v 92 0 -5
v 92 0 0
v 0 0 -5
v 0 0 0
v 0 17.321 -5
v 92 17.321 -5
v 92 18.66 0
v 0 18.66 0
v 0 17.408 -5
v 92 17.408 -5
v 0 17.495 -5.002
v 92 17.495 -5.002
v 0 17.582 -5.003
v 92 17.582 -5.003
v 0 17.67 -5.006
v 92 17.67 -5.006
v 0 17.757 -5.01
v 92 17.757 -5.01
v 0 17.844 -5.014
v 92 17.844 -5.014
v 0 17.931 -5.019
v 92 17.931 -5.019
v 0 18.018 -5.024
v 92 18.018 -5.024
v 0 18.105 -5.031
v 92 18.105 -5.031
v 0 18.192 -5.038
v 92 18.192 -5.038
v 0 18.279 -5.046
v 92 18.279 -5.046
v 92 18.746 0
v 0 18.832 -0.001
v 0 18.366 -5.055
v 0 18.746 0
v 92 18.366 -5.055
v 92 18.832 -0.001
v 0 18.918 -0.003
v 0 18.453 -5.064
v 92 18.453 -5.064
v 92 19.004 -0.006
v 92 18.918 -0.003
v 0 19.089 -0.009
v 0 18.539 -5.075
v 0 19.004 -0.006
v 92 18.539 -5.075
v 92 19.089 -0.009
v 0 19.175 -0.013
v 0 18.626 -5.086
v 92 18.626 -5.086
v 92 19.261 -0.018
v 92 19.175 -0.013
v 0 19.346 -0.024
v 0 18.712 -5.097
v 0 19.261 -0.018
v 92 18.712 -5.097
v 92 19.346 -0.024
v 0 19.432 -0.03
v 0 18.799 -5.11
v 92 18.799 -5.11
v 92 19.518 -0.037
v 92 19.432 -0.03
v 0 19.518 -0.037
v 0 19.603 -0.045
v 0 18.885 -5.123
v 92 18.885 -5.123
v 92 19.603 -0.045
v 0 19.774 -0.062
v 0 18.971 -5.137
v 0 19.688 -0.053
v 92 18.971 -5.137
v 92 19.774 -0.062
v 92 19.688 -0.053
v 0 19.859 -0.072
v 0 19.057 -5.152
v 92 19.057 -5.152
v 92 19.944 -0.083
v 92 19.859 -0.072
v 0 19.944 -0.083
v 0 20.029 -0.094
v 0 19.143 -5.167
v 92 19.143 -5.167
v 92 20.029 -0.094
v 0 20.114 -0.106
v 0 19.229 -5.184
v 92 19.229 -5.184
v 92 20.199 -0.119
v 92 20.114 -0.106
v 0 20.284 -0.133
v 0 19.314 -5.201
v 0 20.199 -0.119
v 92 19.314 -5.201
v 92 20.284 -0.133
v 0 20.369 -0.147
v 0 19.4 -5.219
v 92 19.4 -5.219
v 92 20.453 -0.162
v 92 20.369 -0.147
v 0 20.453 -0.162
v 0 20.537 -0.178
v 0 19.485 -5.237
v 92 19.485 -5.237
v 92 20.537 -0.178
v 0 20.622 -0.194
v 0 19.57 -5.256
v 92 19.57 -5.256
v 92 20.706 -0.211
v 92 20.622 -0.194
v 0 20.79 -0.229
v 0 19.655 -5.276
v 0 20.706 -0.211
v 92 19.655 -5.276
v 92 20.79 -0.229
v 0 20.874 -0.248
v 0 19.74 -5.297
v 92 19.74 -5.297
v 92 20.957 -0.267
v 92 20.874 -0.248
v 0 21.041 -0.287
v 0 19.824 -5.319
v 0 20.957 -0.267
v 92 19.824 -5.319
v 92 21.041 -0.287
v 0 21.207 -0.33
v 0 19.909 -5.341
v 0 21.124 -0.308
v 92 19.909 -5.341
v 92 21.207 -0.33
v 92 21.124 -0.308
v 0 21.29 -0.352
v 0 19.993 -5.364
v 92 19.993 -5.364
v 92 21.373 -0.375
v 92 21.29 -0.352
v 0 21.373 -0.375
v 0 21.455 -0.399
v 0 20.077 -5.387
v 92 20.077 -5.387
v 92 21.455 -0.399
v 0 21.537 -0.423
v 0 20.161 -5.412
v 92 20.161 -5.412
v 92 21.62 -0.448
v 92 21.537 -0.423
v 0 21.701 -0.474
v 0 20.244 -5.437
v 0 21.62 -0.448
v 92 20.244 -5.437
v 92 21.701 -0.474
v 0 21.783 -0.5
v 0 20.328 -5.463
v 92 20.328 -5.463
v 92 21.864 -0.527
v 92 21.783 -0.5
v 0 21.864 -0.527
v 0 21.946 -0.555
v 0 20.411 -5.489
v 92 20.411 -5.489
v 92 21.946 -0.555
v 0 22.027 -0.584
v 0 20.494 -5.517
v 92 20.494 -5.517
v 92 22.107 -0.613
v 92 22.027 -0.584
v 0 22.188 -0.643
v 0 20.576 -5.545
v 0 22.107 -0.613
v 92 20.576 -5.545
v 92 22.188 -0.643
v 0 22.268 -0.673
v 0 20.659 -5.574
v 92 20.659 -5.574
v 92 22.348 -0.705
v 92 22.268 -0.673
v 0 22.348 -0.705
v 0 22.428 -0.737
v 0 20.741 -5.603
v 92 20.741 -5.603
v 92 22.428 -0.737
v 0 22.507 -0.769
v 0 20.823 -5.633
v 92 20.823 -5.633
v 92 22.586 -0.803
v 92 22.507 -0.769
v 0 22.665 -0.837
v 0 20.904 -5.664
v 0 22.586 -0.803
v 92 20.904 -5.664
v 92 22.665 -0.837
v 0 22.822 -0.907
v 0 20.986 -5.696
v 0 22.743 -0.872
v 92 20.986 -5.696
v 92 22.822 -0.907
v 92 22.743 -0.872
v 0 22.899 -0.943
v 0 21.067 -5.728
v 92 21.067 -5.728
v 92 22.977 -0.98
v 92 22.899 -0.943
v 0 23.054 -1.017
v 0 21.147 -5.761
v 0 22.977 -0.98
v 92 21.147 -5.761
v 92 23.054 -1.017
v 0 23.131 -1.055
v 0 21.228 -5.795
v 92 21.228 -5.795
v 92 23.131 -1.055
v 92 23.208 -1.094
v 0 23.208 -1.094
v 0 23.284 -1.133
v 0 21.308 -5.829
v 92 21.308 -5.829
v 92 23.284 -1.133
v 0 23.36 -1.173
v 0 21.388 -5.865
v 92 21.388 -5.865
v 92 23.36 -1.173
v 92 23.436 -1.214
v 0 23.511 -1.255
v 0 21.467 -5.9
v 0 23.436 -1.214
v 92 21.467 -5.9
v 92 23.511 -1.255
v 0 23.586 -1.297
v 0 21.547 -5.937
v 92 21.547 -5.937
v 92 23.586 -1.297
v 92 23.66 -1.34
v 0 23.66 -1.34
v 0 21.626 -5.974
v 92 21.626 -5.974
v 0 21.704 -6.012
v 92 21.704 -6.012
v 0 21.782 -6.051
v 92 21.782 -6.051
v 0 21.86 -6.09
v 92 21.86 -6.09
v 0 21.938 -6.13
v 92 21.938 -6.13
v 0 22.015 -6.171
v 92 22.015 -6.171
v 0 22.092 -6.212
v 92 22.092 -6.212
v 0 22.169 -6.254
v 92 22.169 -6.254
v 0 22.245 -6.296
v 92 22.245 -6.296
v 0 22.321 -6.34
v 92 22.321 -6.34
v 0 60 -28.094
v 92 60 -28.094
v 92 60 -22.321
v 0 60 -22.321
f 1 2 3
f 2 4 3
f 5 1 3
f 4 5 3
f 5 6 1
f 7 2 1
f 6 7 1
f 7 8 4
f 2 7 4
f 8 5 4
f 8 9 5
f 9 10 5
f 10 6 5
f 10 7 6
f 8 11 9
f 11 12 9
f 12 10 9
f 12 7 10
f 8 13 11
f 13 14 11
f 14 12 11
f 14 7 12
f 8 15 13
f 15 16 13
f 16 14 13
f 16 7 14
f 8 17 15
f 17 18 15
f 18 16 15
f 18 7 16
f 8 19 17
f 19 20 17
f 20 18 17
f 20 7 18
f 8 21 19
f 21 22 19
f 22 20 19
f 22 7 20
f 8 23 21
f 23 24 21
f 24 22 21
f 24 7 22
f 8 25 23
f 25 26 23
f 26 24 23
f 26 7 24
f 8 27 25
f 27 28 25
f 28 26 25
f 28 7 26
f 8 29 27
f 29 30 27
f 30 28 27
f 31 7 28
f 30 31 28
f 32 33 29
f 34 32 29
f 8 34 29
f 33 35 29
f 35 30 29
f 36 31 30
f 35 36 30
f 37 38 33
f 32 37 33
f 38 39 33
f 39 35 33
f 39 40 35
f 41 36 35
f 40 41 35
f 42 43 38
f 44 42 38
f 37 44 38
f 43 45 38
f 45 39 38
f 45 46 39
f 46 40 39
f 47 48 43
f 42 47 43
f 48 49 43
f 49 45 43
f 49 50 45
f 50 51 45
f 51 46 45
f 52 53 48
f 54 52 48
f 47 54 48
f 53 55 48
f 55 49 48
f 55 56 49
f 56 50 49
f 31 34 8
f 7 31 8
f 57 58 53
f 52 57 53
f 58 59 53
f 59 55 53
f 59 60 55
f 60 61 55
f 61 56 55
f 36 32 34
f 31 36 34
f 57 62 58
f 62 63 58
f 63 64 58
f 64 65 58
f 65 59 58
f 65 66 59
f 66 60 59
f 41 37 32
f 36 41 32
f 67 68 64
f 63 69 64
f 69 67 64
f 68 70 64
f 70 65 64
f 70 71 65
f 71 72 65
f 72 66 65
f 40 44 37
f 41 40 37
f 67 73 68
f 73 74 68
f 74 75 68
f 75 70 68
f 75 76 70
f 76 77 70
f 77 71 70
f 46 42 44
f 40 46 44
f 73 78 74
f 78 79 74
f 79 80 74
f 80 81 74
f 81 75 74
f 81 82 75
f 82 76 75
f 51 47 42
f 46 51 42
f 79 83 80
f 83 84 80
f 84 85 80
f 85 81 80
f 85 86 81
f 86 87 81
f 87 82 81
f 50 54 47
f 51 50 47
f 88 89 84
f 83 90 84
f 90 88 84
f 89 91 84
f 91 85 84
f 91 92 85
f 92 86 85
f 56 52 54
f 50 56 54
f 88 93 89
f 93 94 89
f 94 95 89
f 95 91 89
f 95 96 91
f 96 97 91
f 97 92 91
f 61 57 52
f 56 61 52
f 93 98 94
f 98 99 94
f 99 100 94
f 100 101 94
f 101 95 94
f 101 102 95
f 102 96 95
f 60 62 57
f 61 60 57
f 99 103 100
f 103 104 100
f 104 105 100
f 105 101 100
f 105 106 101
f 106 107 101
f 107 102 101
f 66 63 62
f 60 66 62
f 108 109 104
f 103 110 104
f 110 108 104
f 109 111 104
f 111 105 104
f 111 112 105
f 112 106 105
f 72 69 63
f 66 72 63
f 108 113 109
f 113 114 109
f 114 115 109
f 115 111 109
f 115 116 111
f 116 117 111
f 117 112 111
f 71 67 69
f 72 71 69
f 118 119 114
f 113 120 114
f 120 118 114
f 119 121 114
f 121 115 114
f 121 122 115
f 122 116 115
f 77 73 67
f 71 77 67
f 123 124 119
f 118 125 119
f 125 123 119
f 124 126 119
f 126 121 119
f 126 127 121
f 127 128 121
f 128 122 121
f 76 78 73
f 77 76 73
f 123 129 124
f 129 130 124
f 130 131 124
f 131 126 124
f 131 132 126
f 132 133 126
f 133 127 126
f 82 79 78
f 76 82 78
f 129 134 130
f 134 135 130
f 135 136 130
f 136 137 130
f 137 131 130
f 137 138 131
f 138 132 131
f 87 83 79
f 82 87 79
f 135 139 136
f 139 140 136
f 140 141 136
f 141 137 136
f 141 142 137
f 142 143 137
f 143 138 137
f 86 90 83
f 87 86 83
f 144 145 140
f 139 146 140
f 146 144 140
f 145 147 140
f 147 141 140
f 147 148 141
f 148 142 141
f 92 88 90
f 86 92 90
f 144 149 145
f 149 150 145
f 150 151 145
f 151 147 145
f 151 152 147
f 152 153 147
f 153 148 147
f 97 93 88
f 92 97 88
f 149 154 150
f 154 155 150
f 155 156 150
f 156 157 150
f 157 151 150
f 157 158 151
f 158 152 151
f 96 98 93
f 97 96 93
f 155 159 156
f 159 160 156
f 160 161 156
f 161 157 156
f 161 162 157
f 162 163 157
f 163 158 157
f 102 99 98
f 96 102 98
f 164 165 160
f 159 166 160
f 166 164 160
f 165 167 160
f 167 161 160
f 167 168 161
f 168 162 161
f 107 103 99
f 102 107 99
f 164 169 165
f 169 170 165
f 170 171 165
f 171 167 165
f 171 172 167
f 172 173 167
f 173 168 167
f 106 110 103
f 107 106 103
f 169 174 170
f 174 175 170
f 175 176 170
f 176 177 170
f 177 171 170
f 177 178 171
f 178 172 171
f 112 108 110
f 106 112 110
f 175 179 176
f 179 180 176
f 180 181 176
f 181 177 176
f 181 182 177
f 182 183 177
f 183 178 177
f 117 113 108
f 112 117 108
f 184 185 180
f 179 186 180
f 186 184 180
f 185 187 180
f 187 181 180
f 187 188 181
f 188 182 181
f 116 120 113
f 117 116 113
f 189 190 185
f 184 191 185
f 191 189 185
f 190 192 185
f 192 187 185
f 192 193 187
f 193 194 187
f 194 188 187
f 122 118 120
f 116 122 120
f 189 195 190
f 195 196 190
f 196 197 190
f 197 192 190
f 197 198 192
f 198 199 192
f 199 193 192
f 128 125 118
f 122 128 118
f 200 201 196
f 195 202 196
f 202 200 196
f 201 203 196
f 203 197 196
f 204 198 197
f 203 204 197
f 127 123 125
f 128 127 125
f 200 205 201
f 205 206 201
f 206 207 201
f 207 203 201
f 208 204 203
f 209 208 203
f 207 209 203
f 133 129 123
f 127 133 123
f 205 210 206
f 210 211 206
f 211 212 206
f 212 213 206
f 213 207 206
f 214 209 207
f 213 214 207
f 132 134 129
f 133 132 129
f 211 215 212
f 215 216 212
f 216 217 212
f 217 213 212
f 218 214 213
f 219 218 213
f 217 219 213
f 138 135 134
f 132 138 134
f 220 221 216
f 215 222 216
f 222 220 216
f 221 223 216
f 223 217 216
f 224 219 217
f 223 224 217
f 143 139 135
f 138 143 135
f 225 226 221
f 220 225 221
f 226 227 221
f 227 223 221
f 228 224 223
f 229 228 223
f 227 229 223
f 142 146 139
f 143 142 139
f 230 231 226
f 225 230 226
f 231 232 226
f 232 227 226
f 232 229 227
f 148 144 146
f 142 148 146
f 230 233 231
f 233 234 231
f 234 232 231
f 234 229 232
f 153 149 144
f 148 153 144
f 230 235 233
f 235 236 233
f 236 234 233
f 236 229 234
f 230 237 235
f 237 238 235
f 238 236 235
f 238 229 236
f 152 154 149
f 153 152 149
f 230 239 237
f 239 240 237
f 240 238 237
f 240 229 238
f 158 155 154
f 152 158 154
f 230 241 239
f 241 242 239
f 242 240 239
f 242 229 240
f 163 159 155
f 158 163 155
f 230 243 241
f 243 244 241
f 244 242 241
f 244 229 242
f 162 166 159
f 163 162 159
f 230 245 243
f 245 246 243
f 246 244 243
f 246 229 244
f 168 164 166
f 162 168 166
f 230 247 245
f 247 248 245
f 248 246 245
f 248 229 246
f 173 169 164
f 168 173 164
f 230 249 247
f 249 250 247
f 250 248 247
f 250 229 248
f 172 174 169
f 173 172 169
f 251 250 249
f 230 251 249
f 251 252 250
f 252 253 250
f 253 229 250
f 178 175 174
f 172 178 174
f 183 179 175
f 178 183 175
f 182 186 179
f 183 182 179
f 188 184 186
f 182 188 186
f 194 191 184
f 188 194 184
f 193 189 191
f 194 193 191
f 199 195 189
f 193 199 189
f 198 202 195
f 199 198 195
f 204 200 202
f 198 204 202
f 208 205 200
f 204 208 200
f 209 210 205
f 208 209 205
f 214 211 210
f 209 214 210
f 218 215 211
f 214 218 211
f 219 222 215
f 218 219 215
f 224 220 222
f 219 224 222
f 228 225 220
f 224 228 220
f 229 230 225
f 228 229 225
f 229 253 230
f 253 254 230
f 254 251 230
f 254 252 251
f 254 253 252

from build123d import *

# Parameters (mm, degrees)
BOSS_EXTRUDE1_DEPTH = 92
FILLET1_R           = 10
FILLET2_R           = 10


with BuildPart() as part:
    # Sketch1 → Boss-Extrude1 (new body)
    with BuildSketch(Plane(origin=(0, 0, 0), x_dir=(0, 0, -1), z_dir=(1, 0, 0))):
        Polygon((0, 0), (0, 21.339745962), (22.320508076, 60), (28.094010768, 60), (5, 20), (5, 0), align=None)
    extrude(amount=BOSS_EXTRUDE1_DEPTH)

    # Fillet1
    fillet1_edges = [part.edges().sort_by_distance(p)[0] for p in [
        (46, 21.339745962, 0),
    ]]
    fillet(fillet1_edges, radius=FILLET1_R)

    # Fillet2
    fillet2_edges = [part.edges().sort_by_distance(p)[0] for p in [
        (46, 20, -5),
    ]]
    fillet(fillet2_edges, radius=FILLET2_R)


solid = part.part
